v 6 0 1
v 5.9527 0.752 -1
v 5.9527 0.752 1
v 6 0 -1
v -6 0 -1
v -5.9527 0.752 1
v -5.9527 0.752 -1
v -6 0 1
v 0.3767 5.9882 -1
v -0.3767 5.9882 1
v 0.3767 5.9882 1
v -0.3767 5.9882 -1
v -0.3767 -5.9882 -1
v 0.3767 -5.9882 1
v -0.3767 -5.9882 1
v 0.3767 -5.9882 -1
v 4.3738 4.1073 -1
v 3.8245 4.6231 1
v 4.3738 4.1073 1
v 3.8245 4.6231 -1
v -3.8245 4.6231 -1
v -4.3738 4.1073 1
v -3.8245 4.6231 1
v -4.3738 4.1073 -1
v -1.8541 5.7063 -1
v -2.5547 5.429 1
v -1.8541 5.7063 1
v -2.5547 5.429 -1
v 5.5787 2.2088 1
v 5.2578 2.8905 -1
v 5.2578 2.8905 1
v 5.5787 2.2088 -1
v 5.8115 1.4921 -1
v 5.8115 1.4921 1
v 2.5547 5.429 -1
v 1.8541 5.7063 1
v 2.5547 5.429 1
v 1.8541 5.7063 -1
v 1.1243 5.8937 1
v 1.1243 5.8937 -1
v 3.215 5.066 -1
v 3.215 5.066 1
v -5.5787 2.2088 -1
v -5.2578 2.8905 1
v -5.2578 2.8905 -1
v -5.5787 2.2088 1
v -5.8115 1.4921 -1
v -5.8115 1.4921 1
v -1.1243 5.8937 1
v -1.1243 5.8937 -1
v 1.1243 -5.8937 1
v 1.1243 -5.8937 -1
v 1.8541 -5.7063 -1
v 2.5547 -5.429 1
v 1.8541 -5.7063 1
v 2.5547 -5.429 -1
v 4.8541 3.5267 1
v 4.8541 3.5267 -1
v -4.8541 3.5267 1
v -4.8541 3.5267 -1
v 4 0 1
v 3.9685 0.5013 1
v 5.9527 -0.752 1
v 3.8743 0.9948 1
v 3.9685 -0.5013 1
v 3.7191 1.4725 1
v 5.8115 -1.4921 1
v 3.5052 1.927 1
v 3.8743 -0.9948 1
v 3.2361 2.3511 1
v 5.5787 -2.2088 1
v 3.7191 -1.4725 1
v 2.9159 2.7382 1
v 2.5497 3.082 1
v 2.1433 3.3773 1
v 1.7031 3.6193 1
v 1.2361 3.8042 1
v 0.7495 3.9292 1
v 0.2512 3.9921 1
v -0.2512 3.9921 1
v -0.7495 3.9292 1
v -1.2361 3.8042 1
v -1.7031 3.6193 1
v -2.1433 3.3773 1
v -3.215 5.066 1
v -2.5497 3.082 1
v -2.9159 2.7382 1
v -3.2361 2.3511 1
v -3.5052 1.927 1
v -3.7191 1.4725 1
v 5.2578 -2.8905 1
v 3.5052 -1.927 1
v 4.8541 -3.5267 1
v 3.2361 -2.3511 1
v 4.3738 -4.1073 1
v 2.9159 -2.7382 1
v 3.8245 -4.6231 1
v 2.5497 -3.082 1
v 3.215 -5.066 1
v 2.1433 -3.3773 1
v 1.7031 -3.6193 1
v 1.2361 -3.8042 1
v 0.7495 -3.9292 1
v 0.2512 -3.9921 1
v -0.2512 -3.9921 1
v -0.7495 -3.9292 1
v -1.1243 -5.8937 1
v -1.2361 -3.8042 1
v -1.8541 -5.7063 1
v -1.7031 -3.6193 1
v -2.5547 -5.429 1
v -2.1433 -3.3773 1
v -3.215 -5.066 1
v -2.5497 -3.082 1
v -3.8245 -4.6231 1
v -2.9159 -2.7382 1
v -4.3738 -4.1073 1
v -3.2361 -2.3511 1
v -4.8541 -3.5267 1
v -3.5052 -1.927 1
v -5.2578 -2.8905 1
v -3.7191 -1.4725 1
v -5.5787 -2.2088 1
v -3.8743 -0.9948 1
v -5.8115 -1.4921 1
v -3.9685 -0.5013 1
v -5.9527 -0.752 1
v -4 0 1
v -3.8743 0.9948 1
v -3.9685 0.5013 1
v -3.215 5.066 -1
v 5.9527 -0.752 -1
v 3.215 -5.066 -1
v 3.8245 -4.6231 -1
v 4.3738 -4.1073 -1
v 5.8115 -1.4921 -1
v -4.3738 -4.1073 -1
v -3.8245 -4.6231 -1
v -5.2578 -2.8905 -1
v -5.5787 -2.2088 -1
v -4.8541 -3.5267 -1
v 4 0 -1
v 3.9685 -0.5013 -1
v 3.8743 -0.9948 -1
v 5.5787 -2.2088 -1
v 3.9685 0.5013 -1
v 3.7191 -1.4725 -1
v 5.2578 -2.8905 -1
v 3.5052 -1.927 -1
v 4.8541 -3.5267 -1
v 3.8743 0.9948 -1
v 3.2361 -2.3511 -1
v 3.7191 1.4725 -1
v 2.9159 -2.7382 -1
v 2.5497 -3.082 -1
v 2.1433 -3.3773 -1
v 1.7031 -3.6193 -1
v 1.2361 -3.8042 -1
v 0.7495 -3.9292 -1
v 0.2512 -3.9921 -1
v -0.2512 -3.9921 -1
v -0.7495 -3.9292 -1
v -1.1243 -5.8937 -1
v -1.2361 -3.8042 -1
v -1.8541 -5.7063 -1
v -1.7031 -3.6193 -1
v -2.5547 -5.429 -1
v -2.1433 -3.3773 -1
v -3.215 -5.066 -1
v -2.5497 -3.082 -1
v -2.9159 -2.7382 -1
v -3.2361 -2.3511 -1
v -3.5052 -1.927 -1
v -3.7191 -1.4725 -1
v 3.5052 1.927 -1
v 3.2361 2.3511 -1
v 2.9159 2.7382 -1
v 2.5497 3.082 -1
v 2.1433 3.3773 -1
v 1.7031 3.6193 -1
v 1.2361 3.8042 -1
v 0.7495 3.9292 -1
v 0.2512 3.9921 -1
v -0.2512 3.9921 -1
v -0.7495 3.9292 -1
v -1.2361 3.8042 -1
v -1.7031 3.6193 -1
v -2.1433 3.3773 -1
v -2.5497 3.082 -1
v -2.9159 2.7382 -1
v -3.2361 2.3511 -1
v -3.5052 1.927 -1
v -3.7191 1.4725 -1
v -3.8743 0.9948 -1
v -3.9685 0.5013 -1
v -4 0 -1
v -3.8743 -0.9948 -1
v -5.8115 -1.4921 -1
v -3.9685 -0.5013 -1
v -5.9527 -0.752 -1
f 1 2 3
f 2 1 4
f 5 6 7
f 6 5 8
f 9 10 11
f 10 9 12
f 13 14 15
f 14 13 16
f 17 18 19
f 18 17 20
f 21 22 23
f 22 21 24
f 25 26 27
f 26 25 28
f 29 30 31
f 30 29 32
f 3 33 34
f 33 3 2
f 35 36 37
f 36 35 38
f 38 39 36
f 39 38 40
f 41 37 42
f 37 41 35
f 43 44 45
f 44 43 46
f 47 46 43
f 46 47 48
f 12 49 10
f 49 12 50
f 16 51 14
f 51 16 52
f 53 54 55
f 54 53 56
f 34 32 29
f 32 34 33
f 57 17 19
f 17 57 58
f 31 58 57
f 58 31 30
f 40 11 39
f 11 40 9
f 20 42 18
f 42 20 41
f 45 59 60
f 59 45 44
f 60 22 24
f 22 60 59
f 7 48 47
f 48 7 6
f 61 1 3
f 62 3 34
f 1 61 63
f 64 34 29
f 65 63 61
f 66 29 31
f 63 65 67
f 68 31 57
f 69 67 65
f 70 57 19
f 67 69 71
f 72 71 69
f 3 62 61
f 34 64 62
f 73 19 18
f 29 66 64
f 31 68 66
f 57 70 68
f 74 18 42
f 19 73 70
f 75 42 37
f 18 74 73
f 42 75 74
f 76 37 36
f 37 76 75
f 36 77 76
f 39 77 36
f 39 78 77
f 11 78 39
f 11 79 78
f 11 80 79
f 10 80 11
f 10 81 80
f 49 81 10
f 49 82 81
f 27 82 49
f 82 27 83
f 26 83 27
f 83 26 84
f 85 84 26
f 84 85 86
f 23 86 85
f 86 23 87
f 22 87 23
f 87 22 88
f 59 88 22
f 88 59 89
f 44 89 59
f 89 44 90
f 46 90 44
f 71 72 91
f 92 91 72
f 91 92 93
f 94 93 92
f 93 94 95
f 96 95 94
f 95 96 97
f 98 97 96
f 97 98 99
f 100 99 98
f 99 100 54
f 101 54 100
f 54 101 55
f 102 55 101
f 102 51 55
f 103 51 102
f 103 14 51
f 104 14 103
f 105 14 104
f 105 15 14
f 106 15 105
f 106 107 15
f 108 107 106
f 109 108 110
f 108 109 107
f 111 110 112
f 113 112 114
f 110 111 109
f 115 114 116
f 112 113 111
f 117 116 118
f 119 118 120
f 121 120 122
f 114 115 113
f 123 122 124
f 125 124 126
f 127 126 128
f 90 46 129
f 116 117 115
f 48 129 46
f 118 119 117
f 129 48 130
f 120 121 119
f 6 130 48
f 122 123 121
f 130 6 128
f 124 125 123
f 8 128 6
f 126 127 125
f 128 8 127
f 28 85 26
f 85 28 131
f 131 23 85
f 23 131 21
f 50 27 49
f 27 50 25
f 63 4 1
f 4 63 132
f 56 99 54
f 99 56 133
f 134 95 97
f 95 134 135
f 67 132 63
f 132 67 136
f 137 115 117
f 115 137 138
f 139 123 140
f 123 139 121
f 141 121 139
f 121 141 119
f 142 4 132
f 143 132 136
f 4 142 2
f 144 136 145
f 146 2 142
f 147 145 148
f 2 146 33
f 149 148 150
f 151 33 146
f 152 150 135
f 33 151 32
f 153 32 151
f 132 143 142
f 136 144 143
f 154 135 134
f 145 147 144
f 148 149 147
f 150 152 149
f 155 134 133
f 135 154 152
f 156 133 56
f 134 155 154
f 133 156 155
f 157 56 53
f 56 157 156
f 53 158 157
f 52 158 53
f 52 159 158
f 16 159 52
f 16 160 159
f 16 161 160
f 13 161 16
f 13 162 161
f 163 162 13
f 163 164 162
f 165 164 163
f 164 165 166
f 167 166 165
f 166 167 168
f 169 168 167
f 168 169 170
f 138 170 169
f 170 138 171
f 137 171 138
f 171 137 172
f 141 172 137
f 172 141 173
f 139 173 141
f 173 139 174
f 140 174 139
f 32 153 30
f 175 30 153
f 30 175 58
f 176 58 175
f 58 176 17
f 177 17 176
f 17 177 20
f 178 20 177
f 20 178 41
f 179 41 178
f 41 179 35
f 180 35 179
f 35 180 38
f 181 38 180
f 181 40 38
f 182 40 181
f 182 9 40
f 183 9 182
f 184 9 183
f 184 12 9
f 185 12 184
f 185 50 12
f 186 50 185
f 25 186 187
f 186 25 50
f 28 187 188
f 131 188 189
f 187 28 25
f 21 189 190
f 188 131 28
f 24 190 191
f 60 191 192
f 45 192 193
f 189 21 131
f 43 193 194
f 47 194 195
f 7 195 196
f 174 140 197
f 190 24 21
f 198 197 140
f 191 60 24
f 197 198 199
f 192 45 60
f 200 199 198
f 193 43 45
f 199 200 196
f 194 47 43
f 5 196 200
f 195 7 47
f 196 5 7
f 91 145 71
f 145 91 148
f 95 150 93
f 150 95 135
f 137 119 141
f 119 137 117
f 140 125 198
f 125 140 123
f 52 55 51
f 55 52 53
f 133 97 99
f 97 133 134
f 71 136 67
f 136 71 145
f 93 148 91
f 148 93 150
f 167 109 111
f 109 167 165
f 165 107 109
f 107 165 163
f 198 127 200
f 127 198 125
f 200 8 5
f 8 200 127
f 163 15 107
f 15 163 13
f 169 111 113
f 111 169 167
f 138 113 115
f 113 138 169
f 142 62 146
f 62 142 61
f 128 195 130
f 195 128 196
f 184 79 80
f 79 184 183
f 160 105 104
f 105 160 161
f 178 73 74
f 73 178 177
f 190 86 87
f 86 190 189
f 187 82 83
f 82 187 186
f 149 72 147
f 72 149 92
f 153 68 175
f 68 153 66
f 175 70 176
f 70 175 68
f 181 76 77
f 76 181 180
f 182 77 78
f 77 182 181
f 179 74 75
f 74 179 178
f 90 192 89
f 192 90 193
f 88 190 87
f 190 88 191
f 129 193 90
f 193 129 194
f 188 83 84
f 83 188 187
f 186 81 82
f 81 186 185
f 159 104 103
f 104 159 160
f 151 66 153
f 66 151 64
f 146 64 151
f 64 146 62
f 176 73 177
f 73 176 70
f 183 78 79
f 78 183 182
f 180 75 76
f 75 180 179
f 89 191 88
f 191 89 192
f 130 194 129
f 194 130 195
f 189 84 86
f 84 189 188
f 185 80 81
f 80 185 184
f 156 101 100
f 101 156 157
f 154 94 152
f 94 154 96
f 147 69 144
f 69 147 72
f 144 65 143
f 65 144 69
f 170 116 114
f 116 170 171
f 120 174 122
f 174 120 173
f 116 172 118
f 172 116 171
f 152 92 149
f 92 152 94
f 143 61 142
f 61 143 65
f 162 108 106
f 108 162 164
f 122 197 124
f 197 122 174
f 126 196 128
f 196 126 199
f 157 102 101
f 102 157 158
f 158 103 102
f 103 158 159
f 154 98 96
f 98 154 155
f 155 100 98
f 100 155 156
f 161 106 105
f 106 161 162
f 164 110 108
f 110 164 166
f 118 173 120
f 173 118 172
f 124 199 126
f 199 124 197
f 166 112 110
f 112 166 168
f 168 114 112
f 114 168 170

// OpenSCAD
$fn = 50;


difference() {
	union() {
		translate(v = [0, 0, -1.0000000000]) {
			cylinder(h = 2, r = 6.0000000000);
		}
	}
	union() {
		translate(v = [0, 0, -100.0000000000]) {
			cylinder(h = 200, r = 4);
		}
	}
}
